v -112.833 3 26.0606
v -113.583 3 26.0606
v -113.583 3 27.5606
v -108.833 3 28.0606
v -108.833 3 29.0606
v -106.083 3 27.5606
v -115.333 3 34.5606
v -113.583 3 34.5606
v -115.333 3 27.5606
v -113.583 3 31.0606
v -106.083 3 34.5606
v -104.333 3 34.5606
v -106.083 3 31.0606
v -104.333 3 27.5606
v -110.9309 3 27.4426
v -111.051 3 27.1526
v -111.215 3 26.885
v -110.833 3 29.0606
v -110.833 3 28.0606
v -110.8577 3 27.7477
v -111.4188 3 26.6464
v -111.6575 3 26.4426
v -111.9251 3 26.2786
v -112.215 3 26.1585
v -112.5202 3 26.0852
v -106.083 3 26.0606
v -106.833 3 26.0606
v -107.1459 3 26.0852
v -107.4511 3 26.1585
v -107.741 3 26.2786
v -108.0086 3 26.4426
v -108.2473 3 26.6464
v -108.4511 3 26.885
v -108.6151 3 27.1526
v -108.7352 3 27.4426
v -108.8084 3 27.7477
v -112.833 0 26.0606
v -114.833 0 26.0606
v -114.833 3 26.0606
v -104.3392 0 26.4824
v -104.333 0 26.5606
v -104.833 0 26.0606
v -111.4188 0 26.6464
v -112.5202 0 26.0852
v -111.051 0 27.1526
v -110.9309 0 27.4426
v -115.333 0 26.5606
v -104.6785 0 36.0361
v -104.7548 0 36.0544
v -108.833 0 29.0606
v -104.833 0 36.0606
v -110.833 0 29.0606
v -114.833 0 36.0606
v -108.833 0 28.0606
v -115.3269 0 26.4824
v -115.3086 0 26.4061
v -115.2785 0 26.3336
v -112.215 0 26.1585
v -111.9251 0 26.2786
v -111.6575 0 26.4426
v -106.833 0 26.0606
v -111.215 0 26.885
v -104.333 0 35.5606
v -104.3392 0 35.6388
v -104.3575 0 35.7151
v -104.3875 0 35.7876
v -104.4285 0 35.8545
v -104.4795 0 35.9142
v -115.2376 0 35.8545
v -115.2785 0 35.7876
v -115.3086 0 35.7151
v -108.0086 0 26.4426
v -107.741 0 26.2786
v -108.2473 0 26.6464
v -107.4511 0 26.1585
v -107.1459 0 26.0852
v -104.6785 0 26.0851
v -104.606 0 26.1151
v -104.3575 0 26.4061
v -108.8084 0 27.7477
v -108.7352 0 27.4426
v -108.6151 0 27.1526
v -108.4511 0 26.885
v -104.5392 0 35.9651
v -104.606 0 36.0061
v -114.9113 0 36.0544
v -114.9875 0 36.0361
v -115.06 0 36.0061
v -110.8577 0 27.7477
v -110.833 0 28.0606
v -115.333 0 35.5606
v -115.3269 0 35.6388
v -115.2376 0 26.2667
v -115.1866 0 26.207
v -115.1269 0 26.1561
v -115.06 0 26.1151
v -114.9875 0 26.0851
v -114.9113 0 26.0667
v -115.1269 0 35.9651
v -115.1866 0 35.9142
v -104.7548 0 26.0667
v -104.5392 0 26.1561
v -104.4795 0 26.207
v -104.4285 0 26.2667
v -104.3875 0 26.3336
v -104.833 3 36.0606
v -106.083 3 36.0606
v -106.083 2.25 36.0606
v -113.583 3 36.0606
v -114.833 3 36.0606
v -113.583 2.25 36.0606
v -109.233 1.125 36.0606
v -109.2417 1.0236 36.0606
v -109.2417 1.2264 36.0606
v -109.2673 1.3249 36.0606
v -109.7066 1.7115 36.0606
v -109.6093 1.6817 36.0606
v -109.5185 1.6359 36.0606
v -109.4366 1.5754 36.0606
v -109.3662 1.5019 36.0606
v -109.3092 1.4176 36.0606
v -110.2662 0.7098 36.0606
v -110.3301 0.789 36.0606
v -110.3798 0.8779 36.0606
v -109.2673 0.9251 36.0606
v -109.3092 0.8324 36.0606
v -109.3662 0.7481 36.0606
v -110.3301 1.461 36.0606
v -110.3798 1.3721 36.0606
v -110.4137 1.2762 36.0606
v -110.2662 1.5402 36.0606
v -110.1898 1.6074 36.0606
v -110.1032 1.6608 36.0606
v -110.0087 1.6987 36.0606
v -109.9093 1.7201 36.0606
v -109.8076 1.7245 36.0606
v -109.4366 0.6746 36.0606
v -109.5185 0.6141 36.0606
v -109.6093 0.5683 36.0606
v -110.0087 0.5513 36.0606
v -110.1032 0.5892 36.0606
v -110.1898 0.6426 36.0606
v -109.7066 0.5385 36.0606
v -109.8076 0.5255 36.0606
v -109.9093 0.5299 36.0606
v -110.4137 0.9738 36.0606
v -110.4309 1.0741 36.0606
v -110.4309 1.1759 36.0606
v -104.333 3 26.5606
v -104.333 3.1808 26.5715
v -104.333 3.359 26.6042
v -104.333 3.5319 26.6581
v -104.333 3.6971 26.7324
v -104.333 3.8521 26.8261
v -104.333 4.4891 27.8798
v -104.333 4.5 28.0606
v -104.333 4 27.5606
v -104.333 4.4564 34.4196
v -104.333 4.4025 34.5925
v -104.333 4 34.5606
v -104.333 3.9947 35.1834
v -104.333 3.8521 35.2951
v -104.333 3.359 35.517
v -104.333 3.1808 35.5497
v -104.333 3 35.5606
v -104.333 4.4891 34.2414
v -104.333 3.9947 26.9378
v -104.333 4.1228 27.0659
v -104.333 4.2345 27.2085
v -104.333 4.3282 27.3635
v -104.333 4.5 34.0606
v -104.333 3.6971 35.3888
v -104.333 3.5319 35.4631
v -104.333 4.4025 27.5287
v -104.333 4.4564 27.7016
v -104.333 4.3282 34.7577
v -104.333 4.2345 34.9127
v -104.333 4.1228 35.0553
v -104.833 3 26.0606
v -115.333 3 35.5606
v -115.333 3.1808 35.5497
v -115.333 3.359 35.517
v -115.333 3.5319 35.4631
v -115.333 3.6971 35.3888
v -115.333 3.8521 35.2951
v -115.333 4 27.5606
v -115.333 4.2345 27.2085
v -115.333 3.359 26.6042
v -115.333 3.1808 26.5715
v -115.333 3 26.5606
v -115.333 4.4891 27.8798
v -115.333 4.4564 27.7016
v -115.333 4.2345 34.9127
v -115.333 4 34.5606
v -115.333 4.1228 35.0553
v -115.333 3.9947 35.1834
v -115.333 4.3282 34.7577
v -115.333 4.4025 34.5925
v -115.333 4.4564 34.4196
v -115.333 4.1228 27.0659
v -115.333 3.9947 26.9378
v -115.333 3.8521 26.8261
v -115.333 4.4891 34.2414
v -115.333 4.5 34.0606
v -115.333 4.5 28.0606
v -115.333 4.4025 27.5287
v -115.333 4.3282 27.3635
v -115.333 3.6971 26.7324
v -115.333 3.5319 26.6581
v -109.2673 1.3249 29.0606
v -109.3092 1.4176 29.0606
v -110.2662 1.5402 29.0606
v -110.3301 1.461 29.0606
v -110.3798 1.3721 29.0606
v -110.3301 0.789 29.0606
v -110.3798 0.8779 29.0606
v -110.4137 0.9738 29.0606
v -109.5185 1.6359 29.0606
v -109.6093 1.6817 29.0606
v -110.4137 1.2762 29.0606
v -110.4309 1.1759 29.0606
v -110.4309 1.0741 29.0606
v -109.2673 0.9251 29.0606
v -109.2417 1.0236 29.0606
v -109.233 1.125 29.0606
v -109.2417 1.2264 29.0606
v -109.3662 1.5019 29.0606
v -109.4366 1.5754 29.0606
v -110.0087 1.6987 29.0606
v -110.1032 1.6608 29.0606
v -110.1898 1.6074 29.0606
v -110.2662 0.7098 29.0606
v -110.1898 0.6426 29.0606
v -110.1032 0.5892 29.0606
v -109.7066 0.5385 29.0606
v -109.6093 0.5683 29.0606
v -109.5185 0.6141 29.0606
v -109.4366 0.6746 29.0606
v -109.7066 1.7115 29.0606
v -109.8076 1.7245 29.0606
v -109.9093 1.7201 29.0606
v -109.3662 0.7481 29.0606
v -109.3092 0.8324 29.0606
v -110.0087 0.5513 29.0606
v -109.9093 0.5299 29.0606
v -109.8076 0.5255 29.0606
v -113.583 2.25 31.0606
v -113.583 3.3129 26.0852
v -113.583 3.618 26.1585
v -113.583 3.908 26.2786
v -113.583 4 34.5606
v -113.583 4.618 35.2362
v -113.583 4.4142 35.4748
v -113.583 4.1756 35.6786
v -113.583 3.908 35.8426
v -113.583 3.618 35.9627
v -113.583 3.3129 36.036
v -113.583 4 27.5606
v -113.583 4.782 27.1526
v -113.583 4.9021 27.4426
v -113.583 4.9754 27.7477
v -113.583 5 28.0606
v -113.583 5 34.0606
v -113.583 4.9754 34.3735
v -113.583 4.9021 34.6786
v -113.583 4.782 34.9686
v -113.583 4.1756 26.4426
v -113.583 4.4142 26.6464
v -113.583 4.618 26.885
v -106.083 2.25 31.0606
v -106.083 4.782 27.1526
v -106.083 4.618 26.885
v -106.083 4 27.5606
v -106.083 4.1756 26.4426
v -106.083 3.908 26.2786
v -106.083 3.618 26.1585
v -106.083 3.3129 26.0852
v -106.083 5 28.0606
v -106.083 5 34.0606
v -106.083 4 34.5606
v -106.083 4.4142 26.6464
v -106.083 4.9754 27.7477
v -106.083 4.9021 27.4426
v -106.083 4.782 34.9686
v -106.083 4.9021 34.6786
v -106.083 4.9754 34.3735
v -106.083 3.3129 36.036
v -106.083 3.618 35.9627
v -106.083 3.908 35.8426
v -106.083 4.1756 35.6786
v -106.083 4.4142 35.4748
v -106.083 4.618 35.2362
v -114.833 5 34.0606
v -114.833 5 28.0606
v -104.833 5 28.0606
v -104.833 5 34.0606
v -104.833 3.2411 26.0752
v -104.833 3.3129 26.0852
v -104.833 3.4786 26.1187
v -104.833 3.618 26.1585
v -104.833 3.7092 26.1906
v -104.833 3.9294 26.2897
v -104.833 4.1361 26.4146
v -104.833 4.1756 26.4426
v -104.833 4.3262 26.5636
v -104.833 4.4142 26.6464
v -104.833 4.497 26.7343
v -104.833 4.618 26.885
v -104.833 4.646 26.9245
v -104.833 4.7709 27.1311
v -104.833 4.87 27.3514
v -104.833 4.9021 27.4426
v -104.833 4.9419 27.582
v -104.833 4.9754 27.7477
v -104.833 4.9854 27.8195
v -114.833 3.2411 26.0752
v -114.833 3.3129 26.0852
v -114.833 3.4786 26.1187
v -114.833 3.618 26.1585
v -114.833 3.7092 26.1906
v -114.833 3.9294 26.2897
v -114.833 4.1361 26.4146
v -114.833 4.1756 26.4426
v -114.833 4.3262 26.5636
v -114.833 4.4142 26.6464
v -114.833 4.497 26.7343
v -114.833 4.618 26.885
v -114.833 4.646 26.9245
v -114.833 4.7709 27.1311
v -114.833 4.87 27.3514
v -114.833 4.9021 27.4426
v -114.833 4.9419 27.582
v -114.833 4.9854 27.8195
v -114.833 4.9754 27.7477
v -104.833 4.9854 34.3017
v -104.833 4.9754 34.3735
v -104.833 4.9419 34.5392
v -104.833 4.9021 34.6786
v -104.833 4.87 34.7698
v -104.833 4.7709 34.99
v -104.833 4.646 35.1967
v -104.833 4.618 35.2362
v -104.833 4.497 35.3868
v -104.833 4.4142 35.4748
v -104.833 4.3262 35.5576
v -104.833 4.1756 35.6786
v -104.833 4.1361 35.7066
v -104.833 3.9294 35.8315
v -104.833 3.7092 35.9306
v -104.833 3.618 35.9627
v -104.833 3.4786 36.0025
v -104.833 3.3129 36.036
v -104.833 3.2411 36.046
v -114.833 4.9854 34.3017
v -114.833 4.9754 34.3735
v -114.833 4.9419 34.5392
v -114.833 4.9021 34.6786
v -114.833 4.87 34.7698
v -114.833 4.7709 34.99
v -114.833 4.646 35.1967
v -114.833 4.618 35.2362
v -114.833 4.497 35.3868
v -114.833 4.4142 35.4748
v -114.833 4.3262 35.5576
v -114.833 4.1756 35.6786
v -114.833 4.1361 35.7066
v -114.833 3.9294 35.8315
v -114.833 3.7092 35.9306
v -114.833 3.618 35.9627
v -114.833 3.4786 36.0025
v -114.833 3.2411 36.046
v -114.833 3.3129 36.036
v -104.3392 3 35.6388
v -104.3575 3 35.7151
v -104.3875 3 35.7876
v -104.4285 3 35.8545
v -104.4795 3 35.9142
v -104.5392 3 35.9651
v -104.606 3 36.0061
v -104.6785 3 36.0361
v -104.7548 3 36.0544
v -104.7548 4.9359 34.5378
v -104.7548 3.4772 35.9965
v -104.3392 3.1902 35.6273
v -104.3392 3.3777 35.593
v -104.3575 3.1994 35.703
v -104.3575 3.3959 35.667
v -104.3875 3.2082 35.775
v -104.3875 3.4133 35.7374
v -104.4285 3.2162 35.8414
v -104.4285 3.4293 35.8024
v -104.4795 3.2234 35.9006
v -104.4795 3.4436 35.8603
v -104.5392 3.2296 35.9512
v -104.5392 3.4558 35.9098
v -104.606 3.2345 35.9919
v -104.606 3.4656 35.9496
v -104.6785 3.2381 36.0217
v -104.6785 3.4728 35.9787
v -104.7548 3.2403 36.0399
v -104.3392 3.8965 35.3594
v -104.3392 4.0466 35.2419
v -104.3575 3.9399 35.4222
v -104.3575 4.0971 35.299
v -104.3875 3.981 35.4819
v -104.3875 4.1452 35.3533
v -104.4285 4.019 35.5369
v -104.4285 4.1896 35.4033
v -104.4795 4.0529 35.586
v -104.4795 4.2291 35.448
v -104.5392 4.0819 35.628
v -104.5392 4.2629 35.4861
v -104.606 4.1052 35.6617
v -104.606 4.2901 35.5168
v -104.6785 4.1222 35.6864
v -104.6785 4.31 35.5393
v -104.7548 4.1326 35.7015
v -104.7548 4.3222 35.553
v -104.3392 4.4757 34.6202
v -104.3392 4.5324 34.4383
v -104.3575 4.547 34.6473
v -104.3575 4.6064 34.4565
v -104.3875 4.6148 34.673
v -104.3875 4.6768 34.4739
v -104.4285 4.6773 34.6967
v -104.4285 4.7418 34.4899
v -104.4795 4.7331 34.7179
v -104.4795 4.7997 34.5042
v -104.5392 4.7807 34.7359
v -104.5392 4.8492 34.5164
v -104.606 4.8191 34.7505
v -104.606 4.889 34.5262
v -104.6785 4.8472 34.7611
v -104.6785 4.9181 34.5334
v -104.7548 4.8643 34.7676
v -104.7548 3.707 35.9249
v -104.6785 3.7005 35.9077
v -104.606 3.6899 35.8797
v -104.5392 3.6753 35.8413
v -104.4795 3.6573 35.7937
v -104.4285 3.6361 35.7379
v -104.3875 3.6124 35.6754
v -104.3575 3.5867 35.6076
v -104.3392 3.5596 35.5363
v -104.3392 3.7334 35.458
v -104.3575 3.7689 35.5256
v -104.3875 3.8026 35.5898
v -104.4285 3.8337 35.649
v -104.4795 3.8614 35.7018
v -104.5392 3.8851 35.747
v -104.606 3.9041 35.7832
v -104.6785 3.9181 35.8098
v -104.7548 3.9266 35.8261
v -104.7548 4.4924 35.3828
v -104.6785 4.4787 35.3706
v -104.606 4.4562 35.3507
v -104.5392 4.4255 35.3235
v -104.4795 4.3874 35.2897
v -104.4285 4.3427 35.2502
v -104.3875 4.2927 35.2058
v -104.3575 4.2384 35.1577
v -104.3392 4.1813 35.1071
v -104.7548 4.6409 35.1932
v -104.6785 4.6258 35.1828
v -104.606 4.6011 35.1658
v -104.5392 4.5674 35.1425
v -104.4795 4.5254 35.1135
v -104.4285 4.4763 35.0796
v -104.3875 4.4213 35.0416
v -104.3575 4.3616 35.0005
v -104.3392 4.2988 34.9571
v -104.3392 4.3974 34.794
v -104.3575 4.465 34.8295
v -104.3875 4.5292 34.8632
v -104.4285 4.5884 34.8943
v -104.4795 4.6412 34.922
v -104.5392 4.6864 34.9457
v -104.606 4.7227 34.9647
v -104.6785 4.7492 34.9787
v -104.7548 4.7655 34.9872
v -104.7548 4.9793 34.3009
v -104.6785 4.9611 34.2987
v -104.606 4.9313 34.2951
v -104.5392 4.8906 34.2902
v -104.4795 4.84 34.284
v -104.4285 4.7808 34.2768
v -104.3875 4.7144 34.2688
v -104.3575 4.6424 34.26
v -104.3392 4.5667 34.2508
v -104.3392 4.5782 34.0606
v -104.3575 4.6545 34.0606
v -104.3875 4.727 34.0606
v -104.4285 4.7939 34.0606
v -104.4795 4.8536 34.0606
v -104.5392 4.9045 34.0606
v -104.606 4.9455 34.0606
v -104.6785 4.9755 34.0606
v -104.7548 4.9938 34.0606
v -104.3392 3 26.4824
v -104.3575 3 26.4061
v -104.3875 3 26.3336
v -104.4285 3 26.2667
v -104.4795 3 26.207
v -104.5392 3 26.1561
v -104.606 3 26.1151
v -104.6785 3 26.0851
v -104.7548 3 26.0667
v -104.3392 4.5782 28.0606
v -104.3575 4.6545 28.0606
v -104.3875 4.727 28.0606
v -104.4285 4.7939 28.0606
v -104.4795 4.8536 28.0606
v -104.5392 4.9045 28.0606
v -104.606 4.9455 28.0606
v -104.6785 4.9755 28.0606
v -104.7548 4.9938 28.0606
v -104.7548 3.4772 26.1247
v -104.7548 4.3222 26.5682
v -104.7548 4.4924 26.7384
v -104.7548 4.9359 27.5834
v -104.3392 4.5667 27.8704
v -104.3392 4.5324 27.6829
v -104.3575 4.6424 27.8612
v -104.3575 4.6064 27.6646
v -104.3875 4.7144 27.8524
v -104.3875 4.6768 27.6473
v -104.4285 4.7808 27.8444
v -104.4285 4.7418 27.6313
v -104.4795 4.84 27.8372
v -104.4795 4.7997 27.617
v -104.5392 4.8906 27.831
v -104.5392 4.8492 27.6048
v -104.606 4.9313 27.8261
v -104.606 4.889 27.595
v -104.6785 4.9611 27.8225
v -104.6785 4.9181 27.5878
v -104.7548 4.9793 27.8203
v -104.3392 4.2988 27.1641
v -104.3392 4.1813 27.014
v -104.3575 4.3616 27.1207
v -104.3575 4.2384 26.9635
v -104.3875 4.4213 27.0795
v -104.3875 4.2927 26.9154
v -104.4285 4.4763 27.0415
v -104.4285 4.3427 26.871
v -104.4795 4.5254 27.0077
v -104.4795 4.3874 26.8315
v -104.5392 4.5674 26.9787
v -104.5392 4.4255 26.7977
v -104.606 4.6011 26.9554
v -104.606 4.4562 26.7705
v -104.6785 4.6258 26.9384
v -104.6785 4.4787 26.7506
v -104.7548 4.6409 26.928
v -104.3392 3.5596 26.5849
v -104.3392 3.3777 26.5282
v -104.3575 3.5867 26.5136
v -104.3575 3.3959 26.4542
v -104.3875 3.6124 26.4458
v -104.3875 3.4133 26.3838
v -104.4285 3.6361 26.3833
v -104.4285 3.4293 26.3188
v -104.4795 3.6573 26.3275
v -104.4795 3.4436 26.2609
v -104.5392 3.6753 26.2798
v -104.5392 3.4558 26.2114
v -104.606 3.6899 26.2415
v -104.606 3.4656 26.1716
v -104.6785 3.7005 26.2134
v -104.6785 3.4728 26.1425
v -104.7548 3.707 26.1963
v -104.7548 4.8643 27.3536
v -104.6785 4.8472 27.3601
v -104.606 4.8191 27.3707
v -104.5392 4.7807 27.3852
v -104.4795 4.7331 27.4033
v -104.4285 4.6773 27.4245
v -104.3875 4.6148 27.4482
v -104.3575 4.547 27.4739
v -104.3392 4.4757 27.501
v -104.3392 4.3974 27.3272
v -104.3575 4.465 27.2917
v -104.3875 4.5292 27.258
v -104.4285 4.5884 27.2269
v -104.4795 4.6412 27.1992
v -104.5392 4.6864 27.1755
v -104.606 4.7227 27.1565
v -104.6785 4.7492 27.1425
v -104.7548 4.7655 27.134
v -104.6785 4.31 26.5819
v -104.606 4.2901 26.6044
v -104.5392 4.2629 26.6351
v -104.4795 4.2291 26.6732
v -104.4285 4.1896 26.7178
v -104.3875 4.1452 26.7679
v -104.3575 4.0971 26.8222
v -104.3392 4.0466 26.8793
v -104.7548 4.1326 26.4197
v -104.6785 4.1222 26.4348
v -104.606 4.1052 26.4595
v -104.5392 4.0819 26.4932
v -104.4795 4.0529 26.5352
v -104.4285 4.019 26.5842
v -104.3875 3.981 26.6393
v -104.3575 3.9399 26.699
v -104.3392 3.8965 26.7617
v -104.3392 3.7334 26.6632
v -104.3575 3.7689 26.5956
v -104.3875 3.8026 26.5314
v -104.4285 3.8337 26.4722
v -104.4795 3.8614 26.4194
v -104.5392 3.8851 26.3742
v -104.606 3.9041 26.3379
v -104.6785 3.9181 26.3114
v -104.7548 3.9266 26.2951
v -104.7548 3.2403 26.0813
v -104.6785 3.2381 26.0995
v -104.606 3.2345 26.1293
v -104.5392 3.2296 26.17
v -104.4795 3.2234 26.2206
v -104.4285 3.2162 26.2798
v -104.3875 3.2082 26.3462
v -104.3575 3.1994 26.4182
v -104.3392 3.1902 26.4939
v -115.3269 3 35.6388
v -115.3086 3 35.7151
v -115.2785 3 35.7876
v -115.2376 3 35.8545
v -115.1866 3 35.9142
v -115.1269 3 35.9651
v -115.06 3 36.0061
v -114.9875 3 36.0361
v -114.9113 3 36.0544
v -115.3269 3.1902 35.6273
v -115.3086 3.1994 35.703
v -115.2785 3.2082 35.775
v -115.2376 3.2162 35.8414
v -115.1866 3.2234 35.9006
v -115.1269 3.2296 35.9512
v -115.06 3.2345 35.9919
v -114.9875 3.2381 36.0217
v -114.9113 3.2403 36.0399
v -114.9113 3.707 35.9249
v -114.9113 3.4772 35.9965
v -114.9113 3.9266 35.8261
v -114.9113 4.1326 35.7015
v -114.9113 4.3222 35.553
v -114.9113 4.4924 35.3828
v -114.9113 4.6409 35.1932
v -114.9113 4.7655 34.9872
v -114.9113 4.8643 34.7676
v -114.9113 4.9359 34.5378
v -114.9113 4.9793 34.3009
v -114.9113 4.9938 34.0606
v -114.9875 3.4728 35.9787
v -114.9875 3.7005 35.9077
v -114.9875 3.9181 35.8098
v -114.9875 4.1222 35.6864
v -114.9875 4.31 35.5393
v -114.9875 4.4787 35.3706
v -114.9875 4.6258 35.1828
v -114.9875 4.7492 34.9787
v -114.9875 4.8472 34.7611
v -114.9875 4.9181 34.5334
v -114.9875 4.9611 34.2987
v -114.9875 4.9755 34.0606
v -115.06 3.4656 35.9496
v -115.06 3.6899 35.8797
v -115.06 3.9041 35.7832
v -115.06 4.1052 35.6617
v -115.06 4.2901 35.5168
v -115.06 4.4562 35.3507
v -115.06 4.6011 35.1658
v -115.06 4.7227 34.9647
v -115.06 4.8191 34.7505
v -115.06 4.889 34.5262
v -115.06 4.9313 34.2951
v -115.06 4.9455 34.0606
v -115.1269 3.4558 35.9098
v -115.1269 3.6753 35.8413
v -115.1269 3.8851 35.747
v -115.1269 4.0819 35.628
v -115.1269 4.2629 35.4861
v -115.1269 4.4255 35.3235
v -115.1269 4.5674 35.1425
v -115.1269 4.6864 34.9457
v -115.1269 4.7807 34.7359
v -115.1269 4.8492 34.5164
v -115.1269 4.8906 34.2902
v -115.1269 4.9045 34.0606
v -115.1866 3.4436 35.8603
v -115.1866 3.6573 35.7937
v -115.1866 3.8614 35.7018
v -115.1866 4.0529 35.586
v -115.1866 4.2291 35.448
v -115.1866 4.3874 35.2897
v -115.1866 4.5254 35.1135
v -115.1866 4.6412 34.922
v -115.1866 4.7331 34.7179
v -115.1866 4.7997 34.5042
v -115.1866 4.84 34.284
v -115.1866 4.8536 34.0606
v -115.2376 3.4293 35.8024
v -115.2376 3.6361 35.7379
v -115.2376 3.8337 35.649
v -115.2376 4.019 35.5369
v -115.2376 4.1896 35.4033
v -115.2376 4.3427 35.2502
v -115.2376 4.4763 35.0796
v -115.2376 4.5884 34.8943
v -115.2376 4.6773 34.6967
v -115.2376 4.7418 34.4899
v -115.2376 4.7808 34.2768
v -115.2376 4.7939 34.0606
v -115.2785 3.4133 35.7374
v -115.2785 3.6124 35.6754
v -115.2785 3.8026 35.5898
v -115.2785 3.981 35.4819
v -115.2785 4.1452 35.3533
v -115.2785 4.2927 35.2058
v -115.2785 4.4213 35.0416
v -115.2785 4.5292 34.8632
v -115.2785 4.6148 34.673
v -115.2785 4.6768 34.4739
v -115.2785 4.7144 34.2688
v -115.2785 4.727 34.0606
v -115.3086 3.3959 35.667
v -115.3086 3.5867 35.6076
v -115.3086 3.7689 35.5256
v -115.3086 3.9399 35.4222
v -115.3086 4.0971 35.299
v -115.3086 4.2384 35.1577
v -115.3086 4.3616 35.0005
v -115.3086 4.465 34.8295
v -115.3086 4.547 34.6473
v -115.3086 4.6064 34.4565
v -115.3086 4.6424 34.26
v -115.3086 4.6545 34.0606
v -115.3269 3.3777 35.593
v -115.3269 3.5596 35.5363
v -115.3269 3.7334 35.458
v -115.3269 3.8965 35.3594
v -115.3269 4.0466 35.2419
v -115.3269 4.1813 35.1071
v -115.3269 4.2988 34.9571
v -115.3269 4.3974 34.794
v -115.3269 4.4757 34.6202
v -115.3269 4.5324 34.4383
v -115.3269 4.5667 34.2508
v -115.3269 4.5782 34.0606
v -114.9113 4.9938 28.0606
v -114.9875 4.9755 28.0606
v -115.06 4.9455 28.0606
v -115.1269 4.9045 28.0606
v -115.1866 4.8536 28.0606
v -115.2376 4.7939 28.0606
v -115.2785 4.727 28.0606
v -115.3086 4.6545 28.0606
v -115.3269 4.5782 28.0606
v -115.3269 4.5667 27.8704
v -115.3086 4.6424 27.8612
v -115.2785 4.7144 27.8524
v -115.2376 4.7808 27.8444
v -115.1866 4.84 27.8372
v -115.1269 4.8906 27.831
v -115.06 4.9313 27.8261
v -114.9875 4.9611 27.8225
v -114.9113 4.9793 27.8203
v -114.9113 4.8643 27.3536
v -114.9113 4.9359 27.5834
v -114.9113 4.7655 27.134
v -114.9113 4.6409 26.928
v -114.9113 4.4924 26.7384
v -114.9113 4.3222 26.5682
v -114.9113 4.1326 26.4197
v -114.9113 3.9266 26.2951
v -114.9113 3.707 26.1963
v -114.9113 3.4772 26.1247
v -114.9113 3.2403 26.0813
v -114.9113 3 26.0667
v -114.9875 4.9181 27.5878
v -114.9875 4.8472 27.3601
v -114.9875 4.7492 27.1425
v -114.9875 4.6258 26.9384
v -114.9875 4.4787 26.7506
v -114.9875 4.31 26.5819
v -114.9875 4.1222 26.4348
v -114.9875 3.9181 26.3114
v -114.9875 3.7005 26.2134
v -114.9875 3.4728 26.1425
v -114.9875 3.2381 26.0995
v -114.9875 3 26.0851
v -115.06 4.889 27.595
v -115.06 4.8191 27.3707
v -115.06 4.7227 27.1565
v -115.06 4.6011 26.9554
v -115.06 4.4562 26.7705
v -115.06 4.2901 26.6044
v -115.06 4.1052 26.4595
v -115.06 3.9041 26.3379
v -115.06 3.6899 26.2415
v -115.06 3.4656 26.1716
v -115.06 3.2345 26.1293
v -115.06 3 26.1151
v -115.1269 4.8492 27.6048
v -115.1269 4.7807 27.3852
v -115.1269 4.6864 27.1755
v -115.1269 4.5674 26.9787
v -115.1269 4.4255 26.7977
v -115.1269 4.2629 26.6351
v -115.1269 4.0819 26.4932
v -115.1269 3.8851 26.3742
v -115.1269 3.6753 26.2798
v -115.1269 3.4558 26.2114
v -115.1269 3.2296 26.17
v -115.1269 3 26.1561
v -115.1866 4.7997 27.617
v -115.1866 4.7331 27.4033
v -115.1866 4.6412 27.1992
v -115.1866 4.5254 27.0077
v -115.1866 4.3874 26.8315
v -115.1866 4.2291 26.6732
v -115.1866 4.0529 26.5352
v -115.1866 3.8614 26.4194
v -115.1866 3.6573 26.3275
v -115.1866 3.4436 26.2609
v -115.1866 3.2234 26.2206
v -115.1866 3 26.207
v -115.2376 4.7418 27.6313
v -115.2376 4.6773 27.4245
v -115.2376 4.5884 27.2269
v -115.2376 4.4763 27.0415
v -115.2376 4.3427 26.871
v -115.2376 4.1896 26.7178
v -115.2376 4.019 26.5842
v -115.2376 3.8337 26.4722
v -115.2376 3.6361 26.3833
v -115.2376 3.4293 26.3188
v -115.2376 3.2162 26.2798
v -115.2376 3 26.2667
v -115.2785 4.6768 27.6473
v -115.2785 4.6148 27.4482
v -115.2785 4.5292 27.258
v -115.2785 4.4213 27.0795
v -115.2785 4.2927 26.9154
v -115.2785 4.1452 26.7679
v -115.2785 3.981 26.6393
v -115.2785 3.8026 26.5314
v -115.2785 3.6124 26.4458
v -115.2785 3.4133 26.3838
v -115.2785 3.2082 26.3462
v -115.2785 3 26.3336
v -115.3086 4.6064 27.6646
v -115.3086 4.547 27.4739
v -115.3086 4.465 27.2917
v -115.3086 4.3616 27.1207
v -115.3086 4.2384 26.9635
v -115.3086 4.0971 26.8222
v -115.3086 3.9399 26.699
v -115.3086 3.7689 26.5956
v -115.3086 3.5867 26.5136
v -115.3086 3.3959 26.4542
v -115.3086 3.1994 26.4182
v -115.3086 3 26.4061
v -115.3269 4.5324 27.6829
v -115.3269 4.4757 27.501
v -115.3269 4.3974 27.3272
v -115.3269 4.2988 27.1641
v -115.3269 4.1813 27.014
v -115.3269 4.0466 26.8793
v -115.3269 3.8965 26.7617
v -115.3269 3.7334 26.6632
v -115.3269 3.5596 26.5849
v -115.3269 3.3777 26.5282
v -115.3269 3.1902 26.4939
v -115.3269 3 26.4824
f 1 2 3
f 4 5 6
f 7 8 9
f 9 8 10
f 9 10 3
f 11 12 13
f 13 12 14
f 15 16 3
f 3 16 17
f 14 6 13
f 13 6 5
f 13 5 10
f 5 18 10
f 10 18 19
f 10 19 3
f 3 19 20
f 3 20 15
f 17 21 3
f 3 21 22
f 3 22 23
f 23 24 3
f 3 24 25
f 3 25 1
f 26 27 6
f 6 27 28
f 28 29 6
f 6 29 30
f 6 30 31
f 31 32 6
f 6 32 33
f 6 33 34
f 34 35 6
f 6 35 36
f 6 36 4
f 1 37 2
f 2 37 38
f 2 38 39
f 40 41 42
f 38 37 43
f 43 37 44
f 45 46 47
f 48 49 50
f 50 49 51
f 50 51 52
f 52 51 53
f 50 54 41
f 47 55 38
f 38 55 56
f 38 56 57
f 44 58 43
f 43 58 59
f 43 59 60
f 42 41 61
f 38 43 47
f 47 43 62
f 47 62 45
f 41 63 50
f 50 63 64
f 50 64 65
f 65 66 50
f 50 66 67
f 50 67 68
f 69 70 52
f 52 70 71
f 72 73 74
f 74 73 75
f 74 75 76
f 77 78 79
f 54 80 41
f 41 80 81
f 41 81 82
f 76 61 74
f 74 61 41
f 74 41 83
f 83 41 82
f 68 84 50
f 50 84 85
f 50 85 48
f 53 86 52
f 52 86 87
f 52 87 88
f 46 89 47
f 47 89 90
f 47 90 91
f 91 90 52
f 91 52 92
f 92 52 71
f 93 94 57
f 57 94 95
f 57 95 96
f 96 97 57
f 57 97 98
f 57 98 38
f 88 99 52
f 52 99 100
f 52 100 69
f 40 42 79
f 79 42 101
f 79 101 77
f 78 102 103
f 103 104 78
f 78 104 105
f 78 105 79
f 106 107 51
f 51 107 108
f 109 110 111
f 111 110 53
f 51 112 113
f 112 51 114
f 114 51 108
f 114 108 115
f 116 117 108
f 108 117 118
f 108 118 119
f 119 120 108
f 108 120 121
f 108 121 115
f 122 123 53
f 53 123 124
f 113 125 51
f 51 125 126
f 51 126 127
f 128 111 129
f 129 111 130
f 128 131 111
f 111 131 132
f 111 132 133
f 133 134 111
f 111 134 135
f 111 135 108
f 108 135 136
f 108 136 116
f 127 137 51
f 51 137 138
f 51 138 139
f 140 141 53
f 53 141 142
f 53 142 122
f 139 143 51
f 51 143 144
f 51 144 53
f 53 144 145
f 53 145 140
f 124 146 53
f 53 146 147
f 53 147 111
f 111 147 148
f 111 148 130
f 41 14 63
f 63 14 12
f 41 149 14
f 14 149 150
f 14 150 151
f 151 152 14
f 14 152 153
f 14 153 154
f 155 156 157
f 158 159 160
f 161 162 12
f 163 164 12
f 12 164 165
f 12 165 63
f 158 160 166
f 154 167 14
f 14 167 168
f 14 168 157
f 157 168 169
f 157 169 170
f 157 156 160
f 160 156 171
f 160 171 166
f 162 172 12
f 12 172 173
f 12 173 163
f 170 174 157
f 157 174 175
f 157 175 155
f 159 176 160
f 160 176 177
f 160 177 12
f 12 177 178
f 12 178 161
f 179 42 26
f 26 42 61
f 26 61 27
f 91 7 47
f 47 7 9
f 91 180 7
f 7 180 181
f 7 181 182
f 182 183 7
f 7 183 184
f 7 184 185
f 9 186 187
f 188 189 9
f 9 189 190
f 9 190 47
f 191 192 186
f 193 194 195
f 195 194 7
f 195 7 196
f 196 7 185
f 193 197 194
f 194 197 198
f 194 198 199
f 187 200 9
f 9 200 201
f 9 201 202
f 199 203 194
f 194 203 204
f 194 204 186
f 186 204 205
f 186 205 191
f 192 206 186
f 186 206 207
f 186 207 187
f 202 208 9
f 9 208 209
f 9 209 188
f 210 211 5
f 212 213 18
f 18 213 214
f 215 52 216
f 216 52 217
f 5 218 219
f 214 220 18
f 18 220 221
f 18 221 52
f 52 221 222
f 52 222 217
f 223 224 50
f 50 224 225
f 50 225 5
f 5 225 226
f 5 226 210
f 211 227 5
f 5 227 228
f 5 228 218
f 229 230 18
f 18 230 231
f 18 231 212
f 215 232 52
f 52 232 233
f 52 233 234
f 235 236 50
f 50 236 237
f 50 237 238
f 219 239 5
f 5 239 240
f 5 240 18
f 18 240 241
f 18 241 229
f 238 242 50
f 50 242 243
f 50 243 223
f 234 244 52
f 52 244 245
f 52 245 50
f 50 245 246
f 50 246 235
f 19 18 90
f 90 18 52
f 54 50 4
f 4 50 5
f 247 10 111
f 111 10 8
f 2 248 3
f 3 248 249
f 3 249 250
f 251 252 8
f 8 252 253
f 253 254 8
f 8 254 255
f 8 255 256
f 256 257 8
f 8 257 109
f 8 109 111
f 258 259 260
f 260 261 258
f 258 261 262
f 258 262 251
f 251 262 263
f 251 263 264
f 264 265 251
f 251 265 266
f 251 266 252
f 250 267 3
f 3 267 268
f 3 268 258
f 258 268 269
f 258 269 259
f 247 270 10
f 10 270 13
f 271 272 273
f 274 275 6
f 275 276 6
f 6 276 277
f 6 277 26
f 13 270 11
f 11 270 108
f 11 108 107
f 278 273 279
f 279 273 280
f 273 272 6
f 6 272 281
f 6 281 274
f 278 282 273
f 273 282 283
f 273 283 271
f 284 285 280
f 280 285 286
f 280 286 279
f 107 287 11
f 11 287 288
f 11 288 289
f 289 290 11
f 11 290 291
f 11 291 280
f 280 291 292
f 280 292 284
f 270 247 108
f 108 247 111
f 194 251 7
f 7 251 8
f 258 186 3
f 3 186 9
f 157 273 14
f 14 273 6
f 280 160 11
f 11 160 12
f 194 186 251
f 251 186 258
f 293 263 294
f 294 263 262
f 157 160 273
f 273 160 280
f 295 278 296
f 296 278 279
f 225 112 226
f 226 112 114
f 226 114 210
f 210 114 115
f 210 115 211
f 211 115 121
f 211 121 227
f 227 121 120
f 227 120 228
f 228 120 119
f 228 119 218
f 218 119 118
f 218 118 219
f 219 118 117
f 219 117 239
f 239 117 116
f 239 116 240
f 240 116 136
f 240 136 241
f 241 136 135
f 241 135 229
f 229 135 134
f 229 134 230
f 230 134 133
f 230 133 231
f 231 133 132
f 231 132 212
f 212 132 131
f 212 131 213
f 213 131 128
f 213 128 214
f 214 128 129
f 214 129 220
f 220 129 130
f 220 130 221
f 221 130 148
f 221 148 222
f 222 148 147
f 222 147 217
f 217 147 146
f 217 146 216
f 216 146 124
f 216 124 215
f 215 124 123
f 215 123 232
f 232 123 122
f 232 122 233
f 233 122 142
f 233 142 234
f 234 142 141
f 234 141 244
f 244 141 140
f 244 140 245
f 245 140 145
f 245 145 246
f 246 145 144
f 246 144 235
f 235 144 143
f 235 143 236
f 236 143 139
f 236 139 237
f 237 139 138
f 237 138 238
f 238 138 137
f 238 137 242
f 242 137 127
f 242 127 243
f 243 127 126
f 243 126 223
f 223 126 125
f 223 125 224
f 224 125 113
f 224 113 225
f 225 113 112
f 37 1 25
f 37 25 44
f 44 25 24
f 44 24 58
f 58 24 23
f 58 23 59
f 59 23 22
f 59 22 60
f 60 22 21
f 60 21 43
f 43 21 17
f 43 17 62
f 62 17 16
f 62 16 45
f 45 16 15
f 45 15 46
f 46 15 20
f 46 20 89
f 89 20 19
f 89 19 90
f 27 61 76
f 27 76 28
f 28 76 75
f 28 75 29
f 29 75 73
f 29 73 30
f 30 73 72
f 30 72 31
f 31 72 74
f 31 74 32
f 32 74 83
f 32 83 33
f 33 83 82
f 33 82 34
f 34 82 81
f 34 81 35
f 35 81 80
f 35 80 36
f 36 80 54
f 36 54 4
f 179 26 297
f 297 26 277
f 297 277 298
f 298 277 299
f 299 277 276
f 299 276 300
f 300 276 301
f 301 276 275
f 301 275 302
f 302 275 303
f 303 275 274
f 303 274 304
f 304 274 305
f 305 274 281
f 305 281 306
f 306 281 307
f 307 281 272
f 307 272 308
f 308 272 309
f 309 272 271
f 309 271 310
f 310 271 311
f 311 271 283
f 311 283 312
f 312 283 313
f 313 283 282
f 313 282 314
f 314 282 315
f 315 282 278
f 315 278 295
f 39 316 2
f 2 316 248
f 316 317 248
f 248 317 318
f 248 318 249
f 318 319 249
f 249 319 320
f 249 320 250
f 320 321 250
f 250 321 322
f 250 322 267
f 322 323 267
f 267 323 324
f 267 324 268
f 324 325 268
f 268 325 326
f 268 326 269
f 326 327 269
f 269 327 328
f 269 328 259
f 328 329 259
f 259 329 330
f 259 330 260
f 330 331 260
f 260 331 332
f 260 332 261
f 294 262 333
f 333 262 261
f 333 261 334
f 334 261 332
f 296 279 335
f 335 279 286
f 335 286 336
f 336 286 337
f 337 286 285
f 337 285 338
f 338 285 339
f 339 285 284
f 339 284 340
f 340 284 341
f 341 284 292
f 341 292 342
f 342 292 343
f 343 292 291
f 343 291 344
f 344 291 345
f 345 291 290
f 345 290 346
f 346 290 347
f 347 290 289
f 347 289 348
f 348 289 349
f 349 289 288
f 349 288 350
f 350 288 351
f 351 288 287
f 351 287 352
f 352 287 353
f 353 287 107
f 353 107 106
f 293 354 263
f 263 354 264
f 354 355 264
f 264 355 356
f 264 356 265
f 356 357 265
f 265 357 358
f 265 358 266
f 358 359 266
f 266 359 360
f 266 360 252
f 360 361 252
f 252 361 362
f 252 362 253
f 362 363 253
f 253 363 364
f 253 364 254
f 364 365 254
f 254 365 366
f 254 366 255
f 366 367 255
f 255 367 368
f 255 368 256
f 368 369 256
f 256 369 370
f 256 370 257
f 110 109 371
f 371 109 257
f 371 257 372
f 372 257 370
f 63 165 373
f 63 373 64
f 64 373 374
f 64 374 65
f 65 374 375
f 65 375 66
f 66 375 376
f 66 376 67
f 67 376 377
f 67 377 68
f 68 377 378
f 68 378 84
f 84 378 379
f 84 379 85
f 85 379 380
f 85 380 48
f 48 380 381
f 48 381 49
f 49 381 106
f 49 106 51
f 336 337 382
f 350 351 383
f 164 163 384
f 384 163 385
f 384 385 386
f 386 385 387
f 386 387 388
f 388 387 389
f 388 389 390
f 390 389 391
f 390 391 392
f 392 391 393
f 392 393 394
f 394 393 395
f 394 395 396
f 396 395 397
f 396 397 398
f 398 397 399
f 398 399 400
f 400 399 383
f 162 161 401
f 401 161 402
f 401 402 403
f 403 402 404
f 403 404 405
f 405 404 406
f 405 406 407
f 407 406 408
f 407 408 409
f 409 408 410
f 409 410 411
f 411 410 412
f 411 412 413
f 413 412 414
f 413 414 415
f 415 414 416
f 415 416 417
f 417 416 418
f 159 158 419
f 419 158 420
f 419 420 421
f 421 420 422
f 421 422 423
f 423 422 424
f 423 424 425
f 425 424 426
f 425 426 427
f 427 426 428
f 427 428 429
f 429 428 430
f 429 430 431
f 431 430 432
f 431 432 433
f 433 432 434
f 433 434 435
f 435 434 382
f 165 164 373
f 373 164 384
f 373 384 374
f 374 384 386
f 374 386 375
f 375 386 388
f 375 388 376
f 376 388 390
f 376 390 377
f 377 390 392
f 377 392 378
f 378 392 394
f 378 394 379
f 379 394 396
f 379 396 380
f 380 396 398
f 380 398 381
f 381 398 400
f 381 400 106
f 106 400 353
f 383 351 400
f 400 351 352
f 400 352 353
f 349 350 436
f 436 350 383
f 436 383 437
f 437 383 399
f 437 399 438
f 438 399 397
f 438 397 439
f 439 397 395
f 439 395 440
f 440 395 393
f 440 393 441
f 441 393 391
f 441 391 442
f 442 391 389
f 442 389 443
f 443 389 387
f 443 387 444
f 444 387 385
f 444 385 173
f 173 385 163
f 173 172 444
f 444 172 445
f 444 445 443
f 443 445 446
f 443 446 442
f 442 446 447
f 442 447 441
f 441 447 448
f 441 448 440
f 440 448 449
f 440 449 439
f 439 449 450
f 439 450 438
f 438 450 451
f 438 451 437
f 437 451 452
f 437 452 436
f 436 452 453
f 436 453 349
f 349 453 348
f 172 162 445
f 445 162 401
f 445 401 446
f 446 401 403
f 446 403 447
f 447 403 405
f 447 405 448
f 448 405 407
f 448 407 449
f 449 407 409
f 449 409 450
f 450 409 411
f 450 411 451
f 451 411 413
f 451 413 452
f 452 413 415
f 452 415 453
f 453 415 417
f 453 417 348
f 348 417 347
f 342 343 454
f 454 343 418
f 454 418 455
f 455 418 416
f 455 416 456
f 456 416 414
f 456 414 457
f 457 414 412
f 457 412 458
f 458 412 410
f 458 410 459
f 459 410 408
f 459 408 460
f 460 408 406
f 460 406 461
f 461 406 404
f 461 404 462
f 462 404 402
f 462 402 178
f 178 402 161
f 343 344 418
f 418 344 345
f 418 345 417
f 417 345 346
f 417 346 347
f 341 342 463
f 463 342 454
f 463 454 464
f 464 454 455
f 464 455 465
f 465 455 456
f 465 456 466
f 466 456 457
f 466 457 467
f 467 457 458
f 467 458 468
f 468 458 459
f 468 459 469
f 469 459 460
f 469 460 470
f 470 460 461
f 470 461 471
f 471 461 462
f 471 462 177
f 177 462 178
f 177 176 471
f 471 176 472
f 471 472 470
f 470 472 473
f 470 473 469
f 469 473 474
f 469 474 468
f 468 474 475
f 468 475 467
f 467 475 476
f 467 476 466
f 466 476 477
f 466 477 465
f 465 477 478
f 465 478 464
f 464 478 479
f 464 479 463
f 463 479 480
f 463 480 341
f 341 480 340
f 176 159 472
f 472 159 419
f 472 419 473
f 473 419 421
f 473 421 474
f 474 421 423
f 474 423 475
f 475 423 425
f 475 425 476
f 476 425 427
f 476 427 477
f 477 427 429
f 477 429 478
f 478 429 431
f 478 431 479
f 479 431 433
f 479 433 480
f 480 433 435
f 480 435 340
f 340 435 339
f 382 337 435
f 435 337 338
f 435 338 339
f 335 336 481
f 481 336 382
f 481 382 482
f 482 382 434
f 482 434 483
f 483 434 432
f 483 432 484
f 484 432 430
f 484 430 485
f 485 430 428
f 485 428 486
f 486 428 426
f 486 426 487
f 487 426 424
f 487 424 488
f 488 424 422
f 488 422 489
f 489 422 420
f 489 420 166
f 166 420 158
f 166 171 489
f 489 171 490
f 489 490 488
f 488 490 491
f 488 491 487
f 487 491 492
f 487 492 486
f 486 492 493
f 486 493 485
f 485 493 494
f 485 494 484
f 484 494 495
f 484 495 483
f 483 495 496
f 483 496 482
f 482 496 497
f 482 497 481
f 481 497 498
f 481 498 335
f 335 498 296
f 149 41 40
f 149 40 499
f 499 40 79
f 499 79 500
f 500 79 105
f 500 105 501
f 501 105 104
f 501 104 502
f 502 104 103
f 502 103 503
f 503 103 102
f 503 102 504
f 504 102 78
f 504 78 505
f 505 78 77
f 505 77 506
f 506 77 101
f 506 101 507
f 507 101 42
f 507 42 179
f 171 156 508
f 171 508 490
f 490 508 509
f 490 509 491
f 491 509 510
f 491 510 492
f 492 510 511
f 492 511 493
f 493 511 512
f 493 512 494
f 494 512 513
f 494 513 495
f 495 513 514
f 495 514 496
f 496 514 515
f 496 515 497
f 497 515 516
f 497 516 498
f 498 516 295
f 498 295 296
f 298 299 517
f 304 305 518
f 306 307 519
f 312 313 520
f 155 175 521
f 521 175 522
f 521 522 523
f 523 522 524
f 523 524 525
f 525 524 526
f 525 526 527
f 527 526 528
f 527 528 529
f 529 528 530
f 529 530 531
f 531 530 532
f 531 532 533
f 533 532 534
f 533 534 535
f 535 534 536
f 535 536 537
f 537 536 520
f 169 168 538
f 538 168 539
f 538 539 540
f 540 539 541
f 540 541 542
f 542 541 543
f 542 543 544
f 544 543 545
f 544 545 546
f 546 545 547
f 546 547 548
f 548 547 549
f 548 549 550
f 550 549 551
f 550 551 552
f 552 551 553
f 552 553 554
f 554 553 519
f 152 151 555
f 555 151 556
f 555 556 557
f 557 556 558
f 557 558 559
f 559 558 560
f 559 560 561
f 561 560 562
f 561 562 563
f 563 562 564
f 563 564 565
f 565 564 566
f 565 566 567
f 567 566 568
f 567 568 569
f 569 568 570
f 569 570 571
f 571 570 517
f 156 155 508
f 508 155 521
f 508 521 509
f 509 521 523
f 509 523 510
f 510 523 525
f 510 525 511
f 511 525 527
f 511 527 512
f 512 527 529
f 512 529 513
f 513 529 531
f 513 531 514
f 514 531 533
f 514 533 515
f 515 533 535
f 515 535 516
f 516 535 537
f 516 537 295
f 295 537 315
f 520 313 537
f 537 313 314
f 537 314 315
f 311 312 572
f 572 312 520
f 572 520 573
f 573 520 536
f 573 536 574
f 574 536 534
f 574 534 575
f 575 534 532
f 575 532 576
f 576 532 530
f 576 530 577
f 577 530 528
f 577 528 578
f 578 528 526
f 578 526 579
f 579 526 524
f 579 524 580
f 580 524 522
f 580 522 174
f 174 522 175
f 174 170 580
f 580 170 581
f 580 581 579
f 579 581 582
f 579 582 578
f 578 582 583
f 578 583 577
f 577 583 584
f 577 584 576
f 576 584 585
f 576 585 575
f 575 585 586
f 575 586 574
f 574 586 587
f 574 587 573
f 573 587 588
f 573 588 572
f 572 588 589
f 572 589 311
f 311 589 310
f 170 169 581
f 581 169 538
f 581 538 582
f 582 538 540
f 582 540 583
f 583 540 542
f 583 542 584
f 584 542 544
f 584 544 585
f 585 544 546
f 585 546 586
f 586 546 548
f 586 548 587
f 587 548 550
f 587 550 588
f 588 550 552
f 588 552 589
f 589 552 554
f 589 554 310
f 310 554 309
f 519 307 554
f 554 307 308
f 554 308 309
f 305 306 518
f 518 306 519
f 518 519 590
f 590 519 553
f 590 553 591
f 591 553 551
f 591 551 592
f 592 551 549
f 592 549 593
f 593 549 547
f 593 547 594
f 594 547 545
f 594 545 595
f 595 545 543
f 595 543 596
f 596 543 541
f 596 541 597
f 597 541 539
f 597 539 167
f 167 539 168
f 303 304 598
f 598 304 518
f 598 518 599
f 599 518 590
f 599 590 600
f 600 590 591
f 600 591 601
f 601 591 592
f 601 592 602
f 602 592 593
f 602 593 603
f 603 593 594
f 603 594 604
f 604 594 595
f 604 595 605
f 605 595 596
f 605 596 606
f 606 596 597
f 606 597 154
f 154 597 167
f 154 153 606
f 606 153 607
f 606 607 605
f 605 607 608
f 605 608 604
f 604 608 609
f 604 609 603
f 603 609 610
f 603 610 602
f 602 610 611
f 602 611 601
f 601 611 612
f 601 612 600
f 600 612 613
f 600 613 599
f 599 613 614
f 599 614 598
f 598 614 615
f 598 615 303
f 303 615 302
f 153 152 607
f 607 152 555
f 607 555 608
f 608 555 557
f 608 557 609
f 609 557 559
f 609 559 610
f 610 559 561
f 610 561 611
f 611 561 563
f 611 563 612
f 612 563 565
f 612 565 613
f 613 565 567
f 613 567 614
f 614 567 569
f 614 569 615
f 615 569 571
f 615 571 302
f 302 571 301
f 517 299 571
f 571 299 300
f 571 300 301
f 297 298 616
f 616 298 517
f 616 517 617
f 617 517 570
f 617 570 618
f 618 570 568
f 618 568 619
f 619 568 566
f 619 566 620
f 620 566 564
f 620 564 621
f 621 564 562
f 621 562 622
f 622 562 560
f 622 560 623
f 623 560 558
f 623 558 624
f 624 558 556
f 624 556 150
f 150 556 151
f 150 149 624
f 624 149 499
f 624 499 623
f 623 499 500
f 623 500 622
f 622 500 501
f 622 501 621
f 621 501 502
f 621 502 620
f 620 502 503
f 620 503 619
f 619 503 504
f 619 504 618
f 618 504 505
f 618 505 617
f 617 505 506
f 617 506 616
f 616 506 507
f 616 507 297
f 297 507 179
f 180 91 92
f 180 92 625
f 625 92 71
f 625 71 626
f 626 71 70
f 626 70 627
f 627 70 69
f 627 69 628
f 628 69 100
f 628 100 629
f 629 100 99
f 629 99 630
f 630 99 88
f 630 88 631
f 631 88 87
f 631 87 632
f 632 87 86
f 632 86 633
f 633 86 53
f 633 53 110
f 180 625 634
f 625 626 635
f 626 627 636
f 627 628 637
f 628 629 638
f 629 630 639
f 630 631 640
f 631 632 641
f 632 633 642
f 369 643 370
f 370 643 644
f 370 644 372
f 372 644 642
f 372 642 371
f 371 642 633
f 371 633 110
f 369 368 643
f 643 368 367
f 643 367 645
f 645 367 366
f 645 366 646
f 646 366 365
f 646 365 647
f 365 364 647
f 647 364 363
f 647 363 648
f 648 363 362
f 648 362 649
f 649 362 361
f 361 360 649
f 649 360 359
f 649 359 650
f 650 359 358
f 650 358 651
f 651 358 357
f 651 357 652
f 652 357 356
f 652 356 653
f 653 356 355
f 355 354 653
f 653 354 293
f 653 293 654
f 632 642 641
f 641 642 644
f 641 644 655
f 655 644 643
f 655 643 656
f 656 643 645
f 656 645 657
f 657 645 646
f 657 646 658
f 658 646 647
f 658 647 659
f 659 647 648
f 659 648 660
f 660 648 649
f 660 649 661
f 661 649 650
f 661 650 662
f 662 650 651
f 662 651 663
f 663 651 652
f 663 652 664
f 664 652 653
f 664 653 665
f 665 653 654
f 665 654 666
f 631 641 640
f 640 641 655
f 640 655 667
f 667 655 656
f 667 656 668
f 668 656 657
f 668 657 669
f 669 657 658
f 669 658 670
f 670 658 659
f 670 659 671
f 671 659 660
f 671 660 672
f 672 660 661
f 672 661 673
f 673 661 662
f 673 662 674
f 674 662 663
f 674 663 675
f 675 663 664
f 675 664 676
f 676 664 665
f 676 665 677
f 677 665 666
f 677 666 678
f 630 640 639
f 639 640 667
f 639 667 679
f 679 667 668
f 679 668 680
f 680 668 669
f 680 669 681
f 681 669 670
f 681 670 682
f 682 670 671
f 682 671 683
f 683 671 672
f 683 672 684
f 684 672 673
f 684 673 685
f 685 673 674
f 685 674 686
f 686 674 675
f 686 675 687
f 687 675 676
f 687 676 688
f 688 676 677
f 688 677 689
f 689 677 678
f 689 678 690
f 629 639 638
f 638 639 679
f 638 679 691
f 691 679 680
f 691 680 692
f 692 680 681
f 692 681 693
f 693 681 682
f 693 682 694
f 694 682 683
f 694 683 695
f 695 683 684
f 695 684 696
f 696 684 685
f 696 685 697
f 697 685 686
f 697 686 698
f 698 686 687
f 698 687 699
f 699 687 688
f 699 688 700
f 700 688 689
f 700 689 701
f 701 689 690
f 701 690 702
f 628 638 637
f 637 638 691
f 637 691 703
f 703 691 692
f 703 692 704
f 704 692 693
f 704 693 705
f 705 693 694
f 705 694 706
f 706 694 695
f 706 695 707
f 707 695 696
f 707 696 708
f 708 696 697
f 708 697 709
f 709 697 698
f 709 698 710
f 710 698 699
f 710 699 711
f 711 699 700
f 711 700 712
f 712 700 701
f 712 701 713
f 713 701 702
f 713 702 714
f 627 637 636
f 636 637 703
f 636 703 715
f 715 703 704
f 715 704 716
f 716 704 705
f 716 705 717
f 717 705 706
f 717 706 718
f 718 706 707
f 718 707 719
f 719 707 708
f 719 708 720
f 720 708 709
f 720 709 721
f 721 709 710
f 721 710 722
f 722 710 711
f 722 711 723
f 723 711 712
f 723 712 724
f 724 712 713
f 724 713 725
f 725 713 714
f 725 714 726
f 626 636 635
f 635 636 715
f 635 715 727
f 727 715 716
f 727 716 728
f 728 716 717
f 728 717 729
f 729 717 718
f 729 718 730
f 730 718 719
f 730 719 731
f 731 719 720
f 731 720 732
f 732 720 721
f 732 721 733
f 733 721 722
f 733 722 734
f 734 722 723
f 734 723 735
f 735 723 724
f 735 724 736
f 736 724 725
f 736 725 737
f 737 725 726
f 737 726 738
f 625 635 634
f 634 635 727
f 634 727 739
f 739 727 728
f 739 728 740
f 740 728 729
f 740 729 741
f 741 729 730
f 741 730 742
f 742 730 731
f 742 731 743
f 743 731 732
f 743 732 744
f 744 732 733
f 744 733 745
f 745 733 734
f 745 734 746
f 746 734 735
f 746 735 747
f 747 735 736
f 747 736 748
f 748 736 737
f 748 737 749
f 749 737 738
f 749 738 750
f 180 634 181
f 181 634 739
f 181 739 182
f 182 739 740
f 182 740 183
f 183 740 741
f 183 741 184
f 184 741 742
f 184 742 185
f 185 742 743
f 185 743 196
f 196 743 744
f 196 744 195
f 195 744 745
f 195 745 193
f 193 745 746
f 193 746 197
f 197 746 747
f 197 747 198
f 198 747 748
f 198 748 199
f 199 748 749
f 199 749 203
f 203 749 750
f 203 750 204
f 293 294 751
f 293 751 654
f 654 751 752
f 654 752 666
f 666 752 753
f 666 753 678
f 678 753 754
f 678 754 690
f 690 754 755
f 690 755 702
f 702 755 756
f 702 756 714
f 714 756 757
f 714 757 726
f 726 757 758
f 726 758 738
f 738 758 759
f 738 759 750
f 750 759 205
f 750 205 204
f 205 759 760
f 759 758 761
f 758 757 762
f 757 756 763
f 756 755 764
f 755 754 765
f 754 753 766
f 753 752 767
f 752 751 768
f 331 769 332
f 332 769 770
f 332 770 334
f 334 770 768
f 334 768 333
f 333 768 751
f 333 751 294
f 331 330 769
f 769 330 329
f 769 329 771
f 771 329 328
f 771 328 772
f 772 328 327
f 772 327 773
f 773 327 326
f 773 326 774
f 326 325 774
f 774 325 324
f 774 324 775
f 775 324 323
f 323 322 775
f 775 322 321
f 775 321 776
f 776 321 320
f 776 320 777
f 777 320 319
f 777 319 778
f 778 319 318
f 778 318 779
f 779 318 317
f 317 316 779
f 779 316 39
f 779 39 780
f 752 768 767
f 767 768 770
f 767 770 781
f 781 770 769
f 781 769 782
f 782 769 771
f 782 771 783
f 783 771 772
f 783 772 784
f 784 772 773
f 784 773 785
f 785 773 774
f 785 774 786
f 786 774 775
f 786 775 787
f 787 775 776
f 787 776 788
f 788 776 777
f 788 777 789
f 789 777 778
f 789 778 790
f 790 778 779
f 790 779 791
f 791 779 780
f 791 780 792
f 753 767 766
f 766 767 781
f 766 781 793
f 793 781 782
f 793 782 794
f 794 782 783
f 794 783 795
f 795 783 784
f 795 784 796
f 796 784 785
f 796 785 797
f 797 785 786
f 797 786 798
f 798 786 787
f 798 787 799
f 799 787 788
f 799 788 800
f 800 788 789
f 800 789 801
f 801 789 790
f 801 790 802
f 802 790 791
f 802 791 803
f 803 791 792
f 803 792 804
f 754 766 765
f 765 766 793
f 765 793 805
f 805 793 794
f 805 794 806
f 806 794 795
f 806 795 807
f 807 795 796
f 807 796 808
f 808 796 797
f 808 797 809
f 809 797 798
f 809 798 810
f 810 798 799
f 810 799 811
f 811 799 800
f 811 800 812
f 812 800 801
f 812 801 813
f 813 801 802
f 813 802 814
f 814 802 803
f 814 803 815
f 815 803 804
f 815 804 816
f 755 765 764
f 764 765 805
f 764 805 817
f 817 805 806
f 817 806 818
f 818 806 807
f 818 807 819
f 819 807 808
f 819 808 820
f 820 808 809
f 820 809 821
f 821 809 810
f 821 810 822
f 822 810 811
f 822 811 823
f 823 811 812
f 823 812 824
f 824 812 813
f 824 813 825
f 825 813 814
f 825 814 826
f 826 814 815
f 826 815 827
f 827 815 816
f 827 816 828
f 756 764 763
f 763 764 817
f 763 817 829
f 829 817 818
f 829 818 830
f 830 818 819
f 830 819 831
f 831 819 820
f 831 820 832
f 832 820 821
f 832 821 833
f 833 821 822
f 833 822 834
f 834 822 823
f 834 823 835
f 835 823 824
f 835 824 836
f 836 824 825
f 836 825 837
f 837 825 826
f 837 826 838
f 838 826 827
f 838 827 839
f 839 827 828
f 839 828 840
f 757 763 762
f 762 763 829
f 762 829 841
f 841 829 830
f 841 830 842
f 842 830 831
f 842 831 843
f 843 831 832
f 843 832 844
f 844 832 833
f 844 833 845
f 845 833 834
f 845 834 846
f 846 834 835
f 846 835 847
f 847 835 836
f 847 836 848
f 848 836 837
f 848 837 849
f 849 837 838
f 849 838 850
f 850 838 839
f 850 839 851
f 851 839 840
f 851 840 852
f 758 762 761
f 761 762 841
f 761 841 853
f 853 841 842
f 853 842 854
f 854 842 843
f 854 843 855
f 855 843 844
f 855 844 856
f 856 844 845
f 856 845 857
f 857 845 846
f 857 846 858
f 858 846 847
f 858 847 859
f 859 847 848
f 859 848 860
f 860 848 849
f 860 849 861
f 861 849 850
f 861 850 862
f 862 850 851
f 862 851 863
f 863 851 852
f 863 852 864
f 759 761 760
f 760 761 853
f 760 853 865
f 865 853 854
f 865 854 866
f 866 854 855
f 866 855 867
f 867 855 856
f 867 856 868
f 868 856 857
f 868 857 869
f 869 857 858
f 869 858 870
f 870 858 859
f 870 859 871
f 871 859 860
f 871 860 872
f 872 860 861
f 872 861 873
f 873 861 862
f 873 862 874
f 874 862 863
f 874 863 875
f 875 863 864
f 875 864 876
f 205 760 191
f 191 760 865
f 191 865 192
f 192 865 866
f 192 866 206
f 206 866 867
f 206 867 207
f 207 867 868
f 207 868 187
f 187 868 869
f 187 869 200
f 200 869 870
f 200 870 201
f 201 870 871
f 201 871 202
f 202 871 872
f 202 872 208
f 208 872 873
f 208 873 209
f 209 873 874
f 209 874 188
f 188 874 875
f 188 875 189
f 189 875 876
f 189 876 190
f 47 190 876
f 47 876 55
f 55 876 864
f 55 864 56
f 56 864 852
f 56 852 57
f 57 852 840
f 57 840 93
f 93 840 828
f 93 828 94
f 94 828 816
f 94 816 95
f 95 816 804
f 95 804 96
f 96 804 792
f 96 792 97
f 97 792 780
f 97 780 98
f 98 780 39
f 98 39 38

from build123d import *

# Parameters (mm, degrees)
SKETCH1_W           = 11
SKETCH1_H           = 10
BOSS_EXTRUDE1_DEPTH = 3
CUT_EXTRUDE4_DEPTH  = 12
CUT_EXTRUDE5_DEPTH  = 0.75
SKETCH6_W           = 1.75
SKETCH6_H           = 1.5
BOSS_EXTRUDE2_DEPTH = 1
SKETCH7_W           = 1.75
SKETCH7_H           = 10
BOSS_EXTRUDE3_DEPTH = 1
CUT_EXTRUDE6_DEPTH  = 12
FILLET4_R           = 2
FILLET5_R           = 2
FILLET6_R           = 0.5
FILLET7_R           = 0.5


with BuildPart() as part:
    # Sketch1 → Boss-Extrude1 (new body)
    with BuildSketch(Plane(origin=(0, 0, 0), x_dir=(1, 0, 0), z_dir=(0, 1, 0))):
        with Locations((-109.833038928, -31.060593966)):
            Rectangle(SKETCH1_W, SKETCH1_H)
    extrude(amount=BOSS_EXTRUDE1_DEPTH)

    # Sketch2 → Cut-Extrude4 (cut)
    with BuildSketch(Plane(origin=(0, 3, 0), x_dir=(1, 0, 0), z_dir=(0, 1, 0))):
        Polygon((-108.833038928, -26.060593966), (-110.833038928, -26.060593966), (-110.833038928, -29.060593966), (-109.833038928, -29.060593966), (-108.833038928, -29.060593966), align=None)
    extrude(amount=-CUT_EXTRUDE4_DEPTH, mode=Mode.SUBTRACT)

    # Sketch5 → Cut-Extrude5 (cut)
    with BuildSketch(Plane(origin=(0, 3, 0), x_dir=(1, 0, 0), z_dir=(0, 1, 0))):
        Polygon((-109.833038928, -36.060593966), (-113.583038928, -36.060593966), (-113.583038928, -31.060593966), (-106.083038928, -31.060593966), (-106.083038928, -36.060593966), align=None)
    extrude(amount=-CUT_EXTRUDE5_DEPTH, mode=Mode.SUBTRACT)

    # Sketch6 → Boss-Extrude2 (add)
    with BuildSketch(Plane(origin=(0, 3, 0), x_dir=(1, 0, 0), z_dir=(0, 1, 0))):
        with Locations((-114.458038928, -35.310593966)):
            Rectangle(SKETCH6_W, SKETCH6_H)
        with Locations((-114.458038928, -26.810593966)):
            Rectangle(SKETCH6_W, SKETCH6_H)
        with Locations((-105.208038928, -26.810593966)):
            Rectangle(SKETCH6_W, SKETCH6_H)
        with Locations((-105.208038928, -35.310593966)):
            Rectangle(SKETCH6_W, SKETCH6_H)
    extrude(amount=BOSS_EXTRUDE2_DEPTH)

    # Sketch7 → Boss-Extrude3 (add)
    with BuildSketch(Plane(origin=(0, 4, 0), x_dir=(1, 0, 0), z_dir=(0, 1, 0))):
        with Locations((-114.458038928, -31.060593966)):
            Rectangle(SKETCH7_W, SKETCH7_H)
        with Locations((-105.208038928, -31.060593966)):
            Rectangle(SKETCH7_W, SKETCH7_H)
    extrude(amount=BOSS_EXTRUDE3_DEPTH)

    # Sketch8 → Cut-Extrude6 (cut)
    with BuildSketch(Plane.XY.offset(36.060593966)):
        with BuildLine():
            ThreePointArc((-109.233038928, 1.125), (-109.40877486, 1.549264069), (-109.833038928, 1.725))
            Line((-109.833038928, 1.725), (-109.833038928, 0.525))
            ThreePointArc((-109.833038928, 0.525), (-109.40877486, 0.700735931), (-109.233038928, 1.125))
        make_face()
        with BuildLine():
            Line((-109.833038928, 0.525), (-109.833038928, 1.725))
            ThreePointArc((-109.833038928, 1.725), (-110.433038928, 1.125), (-109.833038928, 0.525))
        make_face()
    extrude(amount=-CUT_EXTRUDE6_DEPTH, mode=Mode.SUBTRACT)

    # Fillet4
    fillet4_edges = [part.edges().sort_by_distance(p)[0] for p in [
        (-110.833038928, 1.5, 26.060593966),
        (-108.833038928, 1.5, 26.060593966),
    ]]
    fillet(fillet4_edges, radius=FILLET4_R)

    # Fillet5
    fillet5_edges = [part.edges().sort_by_distance(p)[0] for p in [
        (-105.208038928, 5, 26.060593966),
        (-114.458038928, 5, 26.060593966),
        (-105.208038928, 5, 36.060593966),
        (-114.458038928, 5, 36.060593966),
    ]]
    fillet(fillet5_edges, radius=FILLET5_R)

    # Fillet6
    fillet6_edges = [part.edges().sort_by_distance(p)[0] for p in [
        (-104.333038928, 5, 31.060593966),
        (-104.333038928, 1.5, 26.060593966),
        (-104.333038928, 1.5, 36.060593966),
        (-104.333038928, 4.414213562, 35.474807528),
        (-104.333038928, 4.414213562, 26.646380403),
    ]]
    fillet(fillet6_edges, radius=FILLET6_R)

    # Fillet7
    fillet7_edges = [part.edges().sort_by_distance(p)[0] for p in [
        (-115.333038928, 5, 31.060593966),
        (-115.333038928, 1.5, 36.060593966),
        (-115.333038928, 1.5, 26.060593966),
        (-115.333038928, 4.414213562, 35.474807528),
        (-115.333038928, 4.414213562, 26.646380403),
    ]]
    fillet(fillet7_edges, radius=FILLET7_R)


solid = part.part
